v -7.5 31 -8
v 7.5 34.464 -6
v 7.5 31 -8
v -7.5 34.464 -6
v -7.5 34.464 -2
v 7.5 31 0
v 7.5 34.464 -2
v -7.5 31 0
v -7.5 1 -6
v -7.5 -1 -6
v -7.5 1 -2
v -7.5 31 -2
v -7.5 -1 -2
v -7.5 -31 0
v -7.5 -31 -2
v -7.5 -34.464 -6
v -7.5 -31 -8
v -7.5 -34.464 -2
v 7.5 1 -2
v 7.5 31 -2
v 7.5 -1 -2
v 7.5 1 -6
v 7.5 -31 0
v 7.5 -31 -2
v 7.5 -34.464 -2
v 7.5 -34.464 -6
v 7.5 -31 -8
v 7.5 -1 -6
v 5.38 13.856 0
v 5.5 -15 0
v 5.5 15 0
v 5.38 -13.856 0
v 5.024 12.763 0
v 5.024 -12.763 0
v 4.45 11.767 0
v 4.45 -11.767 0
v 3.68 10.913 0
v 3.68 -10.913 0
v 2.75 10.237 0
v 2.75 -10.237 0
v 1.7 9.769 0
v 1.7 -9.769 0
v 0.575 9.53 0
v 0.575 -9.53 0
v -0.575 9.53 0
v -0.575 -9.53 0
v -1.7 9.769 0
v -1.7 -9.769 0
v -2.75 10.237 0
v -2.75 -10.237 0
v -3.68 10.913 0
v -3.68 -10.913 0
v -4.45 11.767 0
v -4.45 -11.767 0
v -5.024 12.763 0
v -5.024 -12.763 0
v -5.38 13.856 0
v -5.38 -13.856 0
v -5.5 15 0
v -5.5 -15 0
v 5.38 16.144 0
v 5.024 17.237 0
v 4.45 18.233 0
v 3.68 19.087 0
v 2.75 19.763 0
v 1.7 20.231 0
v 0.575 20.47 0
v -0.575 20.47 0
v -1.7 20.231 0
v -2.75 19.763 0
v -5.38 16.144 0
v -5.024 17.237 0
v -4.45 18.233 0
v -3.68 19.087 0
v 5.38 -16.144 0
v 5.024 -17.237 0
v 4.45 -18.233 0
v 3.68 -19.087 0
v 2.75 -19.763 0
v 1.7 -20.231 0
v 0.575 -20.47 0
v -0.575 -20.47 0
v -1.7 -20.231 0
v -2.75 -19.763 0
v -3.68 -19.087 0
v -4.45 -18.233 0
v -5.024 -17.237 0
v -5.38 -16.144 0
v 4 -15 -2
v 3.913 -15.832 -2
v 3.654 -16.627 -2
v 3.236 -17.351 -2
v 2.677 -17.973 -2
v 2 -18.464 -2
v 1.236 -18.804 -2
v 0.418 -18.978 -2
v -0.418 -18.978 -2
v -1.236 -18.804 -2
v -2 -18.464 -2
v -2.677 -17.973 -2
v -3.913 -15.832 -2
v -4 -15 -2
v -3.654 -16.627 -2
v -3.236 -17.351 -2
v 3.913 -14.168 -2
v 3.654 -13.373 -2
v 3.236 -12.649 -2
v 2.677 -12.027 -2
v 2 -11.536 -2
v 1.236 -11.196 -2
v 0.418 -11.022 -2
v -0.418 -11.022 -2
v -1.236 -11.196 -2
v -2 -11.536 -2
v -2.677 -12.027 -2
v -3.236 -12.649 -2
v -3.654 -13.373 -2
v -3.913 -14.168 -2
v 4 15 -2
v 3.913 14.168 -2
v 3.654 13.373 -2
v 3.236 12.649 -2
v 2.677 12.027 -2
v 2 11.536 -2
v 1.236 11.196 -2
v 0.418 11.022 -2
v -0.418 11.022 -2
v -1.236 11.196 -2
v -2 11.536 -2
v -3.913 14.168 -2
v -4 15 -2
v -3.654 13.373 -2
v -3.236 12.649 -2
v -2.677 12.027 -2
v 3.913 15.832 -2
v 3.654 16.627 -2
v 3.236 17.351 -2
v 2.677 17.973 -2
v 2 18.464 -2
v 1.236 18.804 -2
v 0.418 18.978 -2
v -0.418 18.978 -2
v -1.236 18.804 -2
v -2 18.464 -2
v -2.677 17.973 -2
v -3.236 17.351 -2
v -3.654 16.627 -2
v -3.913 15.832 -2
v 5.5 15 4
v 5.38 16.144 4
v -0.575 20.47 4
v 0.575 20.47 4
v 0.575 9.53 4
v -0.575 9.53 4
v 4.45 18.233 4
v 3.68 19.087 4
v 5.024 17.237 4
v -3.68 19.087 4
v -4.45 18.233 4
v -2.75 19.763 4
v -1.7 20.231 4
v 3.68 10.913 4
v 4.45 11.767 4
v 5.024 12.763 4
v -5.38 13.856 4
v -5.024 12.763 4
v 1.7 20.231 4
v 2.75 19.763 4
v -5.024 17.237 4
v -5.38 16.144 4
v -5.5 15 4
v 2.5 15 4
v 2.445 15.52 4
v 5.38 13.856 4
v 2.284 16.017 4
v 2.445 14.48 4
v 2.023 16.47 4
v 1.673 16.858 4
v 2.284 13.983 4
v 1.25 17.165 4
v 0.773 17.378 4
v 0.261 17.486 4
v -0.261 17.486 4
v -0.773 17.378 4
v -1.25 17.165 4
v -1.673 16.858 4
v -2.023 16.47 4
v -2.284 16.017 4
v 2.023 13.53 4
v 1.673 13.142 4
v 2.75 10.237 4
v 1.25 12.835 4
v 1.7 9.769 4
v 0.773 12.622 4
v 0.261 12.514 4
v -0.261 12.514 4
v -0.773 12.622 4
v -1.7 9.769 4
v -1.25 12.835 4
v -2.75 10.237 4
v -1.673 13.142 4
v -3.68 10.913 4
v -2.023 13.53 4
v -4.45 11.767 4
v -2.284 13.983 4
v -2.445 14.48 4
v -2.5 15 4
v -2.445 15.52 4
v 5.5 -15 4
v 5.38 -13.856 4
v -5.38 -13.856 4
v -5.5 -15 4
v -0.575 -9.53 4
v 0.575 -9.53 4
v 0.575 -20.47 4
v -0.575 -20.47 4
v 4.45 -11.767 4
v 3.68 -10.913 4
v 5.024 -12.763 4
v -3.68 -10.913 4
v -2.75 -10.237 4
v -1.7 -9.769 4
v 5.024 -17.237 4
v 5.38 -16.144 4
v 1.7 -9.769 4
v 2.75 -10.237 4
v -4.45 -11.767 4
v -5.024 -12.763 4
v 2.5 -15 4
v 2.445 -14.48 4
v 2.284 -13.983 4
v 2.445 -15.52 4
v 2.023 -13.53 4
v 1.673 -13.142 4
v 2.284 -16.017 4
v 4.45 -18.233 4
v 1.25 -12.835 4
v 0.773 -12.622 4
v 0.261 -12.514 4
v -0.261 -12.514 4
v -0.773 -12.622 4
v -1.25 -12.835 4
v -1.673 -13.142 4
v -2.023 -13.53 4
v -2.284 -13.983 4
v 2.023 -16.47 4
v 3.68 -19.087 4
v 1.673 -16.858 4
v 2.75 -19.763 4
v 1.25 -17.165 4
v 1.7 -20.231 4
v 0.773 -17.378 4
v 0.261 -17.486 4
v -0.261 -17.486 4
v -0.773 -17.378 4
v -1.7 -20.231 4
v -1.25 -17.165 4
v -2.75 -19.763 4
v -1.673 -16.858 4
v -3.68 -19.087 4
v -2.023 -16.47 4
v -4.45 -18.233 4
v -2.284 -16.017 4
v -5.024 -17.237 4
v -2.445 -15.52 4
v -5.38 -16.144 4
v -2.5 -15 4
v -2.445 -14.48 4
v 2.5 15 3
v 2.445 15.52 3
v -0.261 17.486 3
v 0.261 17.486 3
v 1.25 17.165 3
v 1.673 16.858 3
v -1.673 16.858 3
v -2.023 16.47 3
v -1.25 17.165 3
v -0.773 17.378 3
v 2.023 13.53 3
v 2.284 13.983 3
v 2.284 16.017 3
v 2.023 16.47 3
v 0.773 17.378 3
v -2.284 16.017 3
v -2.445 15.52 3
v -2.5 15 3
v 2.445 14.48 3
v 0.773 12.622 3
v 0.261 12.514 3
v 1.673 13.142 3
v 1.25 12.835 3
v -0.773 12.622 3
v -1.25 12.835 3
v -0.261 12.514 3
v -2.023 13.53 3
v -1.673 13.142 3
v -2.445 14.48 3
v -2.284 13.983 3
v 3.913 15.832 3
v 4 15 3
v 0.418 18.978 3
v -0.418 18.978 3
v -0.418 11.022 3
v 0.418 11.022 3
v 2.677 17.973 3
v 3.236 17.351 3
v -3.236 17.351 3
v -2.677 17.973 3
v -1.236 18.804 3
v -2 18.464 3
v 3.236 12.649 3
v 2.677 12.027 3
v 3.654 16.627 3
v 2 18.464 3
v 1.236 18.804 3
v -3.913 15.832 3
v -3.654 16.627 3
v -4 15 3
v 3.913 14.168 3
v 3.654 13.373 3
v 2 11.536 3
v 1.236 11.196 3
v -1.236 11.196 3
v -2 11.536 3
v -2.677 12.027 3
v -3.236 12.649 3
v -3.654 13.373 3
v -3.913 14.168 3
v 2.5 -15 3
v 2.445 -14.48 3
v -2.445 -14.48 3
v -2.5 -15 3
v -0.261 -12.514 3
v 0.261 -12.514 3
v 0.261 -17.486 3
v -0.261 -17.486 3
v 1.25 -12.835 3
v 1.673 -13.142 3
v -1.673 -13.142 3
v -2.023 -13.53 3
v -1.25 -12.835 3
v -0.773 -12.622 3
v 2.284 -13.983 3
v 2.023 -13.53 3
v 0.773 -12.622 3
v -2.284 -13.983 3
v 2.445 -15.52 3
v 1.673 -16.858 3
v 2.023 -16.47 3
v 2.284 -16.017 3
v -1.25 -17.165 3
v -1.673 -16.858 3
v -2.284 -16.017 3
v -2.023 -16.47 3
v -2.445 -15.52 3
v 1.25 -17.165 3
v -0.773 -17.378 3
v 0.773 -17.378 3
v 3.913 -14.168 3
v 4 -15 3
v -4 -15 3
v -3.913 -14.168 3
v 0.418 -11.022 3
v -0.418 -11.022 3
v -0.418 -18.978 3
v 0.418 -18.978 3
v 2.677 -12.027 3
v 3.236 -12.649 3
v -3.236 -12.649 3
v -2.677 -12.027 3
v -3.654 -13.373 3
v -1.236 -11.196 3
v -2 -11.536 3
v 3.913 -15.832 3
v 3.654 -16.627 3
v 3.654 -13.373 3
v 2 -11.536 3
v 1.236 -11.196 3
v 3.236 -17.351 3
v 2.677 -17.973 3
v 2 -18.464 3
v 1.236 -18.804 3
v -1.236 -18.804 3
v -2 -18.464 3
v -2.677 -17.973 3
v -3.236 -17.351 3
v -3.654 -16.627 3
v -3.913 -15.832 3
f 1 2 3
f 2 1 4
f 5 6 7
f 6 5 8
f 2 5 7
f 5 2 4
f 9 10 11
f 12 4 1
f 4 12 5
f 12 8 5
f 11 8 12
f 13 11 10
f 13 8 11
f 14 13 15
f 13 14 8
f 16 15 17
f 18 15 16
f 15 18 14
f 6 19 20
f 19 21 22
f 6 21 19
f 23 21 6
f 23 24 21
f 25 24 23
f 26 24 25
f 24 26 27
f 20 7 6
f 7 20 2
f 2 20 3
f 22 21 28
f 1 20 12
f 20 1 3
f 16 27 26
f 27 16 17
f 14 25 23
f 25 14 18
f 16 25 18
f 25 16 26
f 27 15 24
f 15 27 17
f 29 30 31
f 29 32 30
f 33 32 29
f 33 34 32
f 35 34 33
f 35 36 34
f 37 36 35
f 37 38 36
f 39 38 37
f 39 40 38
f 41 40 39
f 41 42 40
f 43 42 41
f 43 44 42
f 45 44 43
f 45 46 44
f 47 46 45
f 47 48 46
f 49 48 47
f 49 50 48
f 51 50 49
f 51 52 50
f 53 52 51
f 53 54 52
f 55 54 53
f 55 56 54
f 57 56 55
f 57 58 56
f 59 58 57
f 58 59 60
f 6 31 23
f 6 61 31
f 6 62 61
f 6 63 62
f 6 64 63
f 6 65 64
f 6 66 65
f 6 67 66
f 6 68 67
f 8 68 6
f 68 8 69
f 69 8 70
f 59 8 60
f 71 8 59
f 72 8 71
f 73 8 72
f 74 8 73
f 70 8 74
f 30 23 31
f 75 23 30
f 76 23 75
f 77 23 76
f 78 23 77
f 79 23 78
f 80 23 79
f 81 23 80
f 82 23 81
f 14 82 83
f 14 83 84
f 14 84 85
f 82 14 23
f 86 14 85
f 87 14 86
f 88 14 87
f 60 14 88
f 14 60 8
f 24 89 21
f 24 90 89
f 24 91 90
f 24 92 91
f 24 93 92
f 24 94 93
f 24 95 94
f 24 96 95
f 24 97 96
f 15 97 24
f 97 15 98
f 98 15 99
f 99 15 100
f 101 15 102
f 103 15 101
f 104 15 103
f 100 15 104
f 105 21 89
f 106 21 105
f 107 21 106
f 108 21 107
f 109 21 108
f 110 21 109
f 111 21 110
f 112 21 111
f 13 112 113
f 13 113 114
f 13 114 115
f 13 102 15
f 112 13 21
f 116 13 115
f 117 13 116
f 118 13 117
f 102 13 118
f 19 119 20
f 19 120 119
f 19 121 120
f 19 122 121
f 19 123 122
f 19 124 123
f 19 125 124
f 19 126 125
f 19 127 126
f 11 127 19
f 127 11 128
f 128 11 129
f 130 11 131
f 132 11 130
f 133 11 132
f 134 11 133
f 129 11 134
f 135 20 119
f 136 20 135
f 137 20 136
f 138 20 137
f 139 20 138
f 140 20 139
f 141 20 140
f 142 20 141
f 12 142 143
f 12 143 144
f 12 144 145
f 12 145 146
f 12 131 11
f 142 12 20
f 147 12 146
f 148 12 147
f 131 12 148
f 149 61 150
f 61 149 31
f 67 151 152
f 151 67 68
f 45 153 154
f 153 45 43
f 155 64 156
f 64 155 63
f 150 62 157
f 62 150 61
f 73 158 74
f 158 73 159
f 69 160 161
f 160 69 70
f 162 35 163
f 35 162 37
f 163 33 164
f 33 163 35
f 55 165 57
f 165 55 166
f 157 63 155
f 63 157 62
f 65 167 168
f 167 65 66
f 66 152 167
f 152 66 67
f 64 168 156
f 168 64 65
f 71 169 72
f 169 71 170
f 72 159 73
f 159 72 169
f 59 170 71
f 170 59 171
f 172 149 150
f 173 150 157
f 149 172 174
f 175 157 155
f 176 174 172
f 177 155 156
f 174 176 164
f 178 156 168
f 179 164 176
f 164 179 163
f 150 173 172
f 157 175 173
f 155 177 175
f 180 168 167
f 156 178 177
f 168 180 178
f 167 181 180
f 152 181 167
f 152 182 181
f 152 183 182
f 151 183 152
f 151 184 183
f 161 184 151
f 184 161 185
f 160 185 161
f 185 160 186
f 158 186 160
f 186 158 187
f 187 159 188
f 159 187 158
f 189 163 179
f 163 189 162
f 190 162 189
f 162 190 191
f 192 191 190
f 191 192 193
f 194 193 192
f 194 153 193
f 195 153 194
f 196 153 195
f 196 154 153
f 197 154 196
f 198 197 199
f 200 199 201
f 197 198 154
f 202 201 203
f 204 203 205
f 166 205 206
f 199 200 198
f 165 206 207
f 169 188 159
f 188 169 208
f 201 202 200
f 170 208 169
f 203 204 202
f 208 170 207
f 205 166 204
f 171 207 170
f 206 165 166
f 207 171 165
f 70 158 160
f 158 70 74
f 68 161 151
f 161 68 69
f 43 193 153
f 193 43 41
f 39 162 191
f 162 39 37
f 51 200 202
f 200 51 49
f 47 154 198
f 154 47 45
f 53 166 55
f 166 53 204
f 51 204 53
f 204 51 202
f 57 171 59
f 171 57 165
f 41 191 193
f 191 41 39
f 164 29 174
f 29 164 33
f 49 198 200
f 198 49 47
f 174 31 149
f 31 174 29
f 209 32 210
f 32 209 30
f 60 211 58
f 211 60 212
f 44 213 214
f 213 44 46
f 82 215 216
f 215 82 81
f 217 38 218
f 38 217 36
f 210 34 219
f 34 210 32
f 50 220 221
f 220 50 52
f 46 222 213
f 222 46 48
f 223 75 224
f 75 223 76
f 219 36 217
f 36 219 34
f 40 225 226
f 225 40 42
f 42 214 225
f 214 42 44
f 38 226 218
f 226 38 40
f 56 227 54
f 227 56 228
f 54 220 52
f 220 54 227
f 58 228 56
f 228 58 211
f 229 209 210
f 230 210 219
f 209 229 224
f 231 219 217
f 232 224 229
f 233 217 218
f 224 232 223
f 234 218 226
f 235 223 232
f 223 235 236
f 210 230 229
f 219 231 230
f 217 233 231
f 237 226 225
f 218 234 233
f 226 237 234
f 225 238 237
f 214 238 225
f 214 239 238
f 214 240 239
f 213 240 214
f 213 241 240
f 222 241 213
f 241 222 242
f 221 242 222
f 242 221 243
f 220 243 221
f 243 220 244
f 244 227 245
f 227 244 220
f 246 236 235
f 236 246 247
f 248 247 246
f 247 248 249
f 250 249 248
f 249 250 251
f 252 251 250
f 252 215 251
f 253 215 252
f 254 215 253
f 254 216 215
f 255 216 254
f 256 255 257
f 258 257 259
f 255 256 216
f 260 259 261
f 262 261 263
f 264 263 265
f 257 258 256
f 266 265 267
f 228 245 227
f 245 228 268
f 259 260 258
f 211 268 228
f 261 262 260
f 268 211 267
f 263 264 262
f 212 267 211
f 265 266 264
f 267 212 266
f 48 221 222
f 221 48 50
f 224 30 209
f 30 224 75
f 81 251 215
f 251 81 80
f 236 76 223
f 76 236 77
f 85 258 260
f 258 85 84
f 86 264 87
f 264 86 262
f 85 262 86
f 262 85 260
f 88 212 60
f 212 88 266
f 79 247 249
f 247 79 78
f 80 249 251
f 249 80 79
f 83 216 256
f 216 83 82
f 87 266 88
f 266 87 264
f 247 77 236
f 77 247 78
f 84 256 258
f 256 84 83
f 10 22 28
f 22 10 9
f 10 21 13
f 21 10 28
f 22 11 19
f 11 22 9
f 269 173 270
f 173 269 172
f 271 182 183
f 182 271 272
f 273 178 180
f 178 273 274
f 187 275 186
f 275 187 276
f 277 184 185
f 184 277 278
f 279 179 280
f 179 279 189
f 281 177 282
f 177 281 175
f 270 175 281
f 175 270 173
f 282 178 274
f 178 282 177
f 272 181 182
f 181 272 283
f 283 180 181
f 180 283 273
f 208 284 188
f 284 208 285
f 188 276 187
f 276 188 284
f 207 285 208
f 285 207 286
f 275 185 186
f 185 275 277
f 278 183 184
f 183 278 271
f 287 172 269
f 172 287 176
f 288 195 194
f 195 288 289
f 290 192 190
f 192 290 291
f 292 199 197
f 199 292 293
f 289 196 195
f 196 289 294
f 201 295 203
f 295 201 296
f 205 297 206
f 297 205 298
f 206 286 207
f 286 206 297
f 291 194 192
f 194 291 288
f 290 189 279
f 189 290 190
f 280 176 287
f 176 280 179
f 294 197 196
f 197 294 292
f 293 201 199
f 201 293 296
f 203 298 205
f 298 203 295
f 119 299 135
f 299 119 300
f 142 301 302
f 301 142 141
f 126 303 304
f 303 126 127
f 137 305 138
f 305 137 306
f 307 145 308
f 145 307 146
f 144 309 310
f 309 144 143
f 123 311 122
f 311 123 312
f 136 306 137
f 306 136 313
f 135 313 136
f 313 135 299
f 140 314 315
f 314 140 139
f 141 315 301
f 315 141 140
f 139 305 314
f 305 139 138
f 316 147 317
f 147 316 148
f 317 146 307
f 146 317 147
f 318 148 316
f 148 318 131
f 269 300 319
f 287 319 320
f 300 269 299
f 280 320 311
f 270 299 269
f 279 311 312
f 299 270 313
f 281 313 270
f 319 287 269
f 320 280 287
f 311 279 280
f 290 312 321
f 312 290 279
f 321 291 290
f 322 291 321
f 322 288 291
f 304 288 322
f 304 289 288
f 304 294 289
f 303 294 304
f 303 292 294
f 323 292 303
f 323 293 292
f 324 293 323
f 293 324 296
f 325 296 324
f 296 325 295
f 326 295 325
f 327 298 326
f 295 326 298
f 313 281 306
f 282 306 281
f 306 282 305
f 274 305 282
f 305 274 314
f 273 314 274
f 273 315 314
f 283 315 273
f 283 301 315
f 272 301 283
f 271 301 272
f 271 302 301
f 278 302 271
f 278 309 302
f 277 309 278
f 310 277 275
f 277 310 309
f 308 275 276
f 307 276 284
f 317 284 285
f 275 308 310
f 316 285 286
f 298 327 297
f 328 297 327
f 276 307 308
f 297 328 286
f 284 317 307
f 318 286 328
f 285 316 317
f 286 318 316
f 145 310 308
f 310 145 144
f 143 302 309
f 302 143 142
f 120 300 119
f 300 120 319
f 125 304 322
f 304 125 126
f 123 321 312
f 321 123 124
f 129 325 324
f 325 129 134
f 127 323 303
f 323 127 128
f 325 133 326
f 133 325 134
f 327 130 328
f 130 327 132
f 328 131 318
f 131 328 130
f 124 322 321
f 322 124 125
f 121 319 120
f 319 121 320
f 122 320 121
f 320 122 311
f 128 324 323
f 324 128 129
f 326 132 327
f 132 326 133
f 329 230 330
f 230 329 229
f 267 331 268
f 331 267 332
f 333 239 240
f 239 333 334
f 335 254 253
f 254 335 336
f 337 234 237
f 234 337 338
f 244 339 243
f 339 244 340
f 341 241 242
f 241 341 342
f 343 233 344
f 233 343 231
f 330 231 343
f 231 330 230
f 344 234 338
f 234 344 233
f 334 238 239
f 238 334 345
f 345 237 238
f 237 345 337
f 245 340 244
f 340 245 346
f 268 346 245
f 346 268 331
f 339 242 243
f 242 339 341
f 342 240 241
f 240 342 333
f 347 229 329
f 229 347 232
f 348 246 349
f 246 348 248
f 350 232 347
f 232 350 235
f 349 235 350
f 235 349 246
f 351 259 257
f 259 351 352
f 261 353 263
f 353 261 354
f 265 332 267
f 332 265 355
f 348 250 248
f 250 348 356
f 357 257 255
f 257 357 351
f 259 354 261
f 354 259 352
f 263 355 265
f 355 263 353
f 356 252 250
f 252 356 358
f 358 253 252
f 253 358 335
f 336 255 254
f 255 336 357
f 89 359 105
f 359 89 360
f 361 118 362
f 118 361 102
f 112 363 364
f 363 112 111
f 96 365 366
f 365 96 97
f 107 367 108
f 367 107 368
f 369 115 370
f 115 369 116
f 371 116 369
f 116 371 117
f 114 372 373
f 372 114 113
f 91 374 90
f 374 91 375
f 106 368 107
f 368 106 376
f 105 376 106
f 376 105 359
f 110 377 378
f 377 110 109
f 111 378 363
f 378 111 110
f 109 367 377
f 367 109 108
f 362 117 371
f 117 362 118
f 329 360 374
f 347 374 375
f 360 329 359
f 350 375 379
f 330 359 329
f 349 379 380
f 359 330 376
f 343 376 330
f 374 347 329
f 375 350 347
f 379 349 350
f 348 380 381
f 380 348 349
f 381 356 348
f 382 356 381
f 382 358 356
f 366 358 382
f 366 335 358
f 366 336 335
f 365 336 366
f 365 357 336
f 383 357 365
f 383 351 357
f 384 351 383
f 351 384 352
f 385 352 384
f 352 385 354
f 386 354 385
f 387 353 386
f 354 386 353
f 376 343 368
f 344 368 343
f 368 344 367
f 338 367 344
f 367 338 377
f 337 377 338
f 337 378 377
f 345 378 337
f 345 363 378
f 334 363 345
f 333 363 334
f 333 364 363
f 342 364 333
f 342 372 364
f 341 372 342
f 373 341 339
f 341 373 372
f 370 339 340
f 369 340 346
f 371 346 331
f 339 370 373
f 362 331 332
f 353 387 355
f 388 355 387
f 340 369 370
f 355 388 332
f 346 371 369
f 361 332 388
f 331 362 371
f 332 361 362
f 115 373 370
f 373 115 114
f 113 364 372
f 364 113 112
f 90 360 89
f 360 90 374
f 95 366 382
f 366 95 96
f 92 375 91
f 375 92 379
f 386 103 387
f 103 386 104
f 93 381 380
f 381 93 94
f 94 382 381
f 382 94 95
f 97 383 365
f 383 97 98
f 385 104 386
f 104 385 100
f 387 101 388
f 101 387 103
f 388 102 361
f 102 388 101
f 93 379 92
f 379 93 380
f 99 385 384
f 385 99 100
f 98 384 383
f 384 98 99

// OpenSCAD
t = 5;

rx = 100;
rdy = 4.1;
roy = 30;
royl = 50;





difference(){
union(){
  translate([-15/2,-62/2,-2])cube([15,62,2]);
    


  translate([0,+15,0])cylinder(r=5.5,h=4,$fn=30);
  translate([0,-15,0])cylinder(r=5.5,h=4,$fn=30);
    
  translate([-15/2,-1,-6])cube([15,2,6]);
  translate([0,31,-4])bracket();
  translate([0,-31,-4])mirror([0,1,0])bracket();
}

  translate([0,15,-5])cylinder(r=2.5,h=15,$fn=30);
  translate([0,15,-7])cylinder(r=4,h=10,$fn=30);
  translate([0,-15,-5])cylinder(r=2.5,h=15,$fn=30);
  translate([0,-15,-7])cylinder(r=4,h=10,$fn=30);



}

module bracket(){
  difference(){
    translate([-7.5,0,0])rotate([0,90,0])cylinder(r=4,h=15,$fn=6);
    translate([-15,-20,-10])cube([30,20,20]);
  }
}
